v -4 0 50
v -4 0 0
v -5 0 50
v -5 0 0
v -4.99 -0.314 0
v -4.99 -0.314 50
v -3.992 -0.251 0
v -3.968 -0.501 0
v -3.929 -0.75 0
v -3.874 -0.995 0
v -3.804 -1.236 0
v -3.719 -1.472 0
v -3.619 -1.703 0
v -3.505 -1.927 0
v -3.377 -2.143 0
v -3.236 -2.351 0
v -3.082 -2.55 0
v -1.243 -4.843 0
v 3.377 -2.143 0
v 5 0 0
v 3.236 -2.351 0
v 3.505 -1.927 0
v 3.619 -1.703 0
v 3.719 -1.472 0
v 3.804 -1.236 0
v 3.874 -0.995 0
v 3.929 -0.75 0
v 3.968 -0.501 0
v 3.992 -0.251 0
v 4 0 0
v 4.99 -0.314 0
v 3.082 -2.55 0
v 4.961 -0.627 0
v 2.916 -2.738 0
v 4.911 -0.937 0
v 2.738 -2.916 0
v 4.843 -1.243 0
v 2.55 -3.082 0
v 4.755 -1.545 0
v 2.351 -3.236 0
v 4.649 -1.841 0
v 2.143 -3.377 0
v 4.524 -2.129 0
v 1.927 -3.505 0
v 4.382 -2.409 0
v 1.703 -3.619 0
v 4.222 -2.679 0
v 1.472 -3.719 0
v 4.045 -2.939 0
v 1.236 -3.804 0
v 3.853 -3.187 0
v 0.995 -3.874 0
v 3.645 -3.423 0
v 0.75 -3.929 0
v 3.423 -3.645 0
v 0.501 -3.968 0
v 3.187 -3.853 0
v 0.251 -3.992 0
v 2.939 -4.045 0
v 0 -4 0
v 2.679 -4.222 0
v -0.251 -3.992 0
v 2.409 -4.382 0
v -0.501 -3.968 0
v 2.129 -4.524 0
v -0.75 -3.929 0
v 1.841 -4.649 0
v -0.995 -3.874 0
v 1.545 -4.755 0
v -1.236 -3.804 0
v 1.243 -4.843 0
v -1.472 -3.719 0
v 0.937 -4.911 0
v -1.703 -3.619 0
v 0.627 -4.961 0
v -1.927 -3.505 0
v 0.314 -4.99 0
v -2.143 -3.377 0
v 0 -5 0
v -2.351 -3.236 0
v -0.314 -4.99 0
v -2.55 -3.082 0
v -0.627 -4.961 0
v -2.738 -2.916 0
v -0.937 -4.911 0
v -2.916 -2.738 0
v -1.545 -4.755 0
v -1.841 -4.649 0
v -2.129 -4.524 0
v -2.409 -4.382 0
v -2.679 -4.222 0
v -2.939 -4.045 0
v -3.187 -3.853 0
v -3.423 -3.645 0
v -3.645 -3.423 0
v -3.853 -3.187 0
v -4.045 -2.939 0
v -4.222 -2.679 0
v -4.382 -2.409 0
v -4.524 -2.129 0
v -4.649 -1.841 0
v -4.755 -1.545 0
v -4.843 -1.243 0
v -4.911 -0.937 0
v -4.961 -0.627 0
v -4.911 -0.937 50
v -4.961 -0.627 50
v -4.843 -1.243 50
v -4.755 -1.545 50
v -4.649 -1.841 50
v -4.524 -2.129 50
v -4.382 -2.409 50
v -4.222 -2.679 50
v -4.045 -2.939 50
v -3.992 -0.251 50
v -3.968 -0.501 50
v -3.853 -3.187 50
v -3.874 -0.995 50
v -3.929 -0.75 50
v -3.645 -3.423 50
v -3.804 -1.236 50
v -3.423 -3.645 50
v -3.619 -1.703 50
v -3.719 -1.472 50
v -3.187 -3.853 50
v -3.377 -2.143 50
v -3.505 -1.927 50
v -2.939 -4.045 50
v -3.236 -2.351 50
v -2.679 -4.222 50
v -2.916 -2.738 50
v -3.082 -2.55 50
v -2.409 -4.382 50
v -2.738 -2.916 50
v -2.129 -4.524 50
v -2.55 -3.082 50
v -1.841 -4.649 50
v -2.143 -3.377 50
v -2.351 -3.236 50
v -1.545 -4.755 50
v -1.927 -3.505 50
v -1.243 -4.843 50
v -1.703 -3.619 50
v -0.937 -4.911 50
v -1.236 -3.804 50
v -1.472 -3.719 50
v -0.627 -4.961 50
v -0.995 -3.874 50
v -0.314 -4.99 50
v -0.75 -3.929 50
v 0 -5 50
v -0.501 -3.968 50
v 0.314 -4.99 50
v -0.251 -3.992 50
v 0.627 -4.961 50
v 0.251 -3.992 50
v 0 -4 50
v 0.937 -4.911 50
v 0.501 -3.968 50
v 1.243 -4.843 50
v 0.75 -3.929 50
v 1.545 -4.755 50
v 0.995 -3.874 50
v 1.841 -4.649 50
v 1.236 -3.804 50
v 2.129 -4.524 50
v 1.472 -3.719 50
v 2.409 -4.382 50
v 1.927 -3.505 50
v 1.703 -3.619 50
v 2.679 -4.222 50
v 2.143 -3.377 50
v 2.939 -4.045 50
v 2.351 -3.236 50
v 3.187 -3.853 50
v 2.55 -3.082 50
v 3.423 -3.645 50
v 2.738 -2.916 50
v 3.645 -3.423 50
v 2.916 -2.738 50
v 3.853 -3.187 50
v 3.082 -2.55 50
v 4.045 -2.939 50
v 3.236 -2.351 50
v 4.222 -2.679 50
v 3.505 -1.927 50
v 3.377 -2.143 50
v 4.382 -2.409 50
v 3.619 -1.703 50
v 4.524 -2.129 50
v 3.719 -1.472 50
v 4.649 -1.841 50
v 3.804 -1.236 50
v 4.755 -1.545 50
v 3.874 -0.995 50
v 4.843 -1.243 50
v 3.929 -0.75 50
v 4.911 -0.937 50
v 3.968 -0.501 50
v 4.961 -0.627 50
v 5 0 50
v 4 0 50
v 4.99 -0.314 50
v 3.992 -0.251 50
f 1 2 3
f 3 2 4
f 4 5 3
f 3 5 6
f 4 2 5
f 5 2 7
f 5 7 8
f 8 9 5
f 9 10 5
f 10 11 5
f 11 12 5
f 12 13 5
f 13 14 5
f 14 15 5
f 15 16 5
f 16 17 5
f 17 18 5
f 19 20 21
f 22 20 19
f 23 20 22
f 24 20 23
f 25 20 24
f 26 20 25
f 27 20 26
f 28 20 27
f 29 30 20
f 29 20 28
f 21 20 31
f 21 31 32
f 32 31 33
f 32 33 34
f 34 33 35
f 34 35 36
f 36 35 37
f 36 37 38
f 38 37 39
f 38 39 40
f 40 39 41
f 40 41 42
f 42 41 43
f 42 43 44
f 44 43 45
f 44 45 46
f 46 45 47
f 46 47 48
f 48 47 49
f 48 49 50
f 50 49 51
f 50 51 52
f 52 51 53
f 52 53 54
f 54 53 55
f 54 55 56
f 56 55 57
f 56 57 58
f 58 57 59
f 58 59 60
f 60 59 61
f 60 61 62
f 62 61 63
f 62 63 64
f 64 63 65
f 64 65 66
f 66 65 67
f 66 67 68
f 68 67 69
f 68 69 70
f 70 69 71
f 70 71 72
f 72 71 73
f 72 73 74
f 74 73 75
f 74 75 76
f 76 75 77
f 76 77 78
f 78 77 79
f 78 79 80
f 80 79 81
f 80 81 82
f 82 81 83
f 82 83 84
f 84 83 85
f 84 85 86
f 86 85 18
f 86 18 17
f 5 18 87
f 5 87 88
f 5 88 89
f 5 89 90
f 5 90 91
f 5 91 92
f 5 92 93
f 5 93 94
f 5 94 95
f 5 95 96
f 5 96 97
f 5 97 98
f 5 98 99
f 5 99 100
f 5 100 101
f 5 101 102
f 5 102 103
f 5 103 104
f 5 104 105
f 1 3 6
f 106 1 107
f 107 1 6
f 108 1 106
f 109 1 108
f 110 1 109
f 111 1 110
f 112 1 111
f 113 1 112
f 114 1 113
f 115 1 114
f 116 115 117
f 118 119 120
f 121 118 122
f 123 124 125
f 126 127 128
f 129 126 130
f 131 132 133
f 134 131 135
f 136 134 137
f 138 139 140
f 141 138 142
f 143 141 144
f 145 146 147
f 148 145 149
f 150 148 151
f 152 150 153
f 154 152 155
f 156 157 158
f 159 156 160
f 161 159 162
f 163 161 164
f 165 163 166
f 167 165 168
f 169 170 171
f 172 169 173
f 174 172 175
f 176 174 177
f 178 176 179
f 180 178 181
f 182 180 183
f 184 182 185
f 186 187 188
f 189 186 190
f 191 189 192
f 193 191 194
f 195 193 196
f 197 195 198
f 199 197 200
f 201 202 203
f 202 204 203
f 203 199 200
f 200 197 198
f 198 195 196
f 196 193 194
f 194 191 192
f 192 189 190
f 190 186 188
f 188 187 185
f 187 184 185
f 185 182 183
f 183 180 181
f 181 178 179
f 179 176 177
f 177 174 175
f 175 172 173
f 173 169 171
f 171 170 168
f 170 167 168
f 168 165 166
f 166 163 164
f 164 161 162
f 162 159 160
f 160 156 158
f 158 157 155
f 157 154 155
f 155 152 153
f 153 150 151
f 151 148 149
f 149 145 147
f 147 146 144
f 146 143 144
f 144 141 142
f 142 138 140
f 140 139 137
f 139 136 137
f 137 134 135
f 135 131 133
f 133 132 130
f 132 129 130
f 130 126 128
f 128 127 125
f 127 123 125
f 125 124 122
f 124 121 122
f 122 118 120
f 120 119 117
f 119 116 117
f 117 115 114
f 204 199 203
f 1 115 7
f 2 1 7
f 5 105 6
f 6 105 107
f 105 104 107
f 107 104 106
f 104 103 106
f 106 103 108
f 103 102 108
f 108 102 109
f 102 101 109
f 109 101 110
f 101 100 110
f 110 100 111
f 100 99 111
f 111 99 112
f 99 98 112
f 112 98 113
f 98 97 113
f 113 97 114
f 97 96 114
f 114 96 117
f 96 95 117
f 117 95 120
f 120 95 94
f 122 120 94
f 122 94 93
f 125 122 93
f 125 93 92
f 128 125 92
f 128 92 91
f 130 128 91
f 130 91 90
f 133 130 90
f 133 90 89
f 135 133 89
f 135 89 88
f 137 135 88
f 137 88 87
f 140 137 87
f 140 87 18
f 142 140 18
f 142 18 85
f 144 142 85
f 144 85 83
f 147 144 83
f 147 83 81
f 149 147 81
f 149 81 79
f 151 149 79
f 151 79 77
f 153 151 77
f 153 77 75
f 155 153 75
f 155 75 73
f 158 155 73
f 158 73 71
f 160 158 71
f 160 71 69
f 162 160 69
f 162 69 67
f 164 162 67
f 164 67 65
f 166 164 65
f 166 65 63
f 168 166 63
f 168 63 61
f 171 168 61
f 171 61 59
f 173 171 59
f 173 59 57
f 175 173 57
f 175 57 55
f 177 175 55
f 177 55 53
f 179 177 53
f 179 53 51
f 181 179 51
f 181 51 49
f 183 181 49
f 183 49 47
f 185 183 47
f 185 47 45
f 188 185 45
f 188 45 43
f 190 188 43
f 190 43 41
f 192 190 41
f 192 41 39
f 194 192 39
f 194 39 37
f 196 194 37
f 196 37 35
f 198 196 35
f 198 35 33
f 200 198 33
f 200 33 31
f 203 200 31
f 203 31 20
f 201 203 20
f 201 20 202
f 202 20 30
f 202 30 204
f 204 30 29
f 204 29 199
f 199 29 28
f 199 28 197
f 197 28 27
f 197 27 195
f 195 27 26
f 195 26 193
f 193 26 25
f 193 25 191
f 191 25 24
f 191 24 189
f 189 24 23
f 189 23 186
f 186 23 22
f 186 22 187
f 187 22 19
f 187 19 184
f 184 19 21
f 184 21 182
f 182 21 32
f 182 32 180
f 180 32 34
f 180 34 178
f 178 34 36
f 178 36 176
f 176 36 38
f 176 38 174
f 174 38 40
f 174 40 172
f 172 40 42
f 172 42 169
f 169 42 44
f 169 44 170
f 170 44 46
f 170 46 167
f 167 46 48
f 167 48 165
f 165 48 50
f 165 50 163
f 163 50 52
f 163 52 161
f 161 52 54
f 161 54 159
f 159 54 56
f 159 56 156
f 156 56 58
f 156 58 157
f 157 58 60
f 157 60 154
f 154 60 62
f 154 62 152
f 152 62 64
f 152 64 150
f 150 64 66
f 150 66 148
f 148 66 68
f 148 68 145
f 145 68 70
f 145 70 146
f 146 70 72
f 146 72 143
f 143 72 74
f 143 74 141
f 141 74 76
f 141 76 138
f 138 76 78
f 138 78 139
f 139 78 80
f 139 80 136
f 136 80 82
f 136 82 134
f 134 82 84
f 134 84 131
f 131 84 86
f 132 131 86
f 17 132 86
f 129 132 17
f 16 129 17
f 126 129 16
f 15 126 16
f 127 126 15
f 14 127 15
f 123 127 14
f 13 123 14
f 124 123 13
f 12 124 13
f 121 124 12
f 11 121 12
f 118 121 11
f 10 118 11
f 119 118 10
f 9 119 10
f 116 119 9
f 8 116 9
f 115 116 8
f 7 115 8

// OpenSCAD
difference() {
	cylinder(r=5, h=50, $fn=100);
	
	cylinder(r=4, h=110, center=true, $fn=100);

	translate([-10, 0, -5]) {
		cube(100);
	}
}
